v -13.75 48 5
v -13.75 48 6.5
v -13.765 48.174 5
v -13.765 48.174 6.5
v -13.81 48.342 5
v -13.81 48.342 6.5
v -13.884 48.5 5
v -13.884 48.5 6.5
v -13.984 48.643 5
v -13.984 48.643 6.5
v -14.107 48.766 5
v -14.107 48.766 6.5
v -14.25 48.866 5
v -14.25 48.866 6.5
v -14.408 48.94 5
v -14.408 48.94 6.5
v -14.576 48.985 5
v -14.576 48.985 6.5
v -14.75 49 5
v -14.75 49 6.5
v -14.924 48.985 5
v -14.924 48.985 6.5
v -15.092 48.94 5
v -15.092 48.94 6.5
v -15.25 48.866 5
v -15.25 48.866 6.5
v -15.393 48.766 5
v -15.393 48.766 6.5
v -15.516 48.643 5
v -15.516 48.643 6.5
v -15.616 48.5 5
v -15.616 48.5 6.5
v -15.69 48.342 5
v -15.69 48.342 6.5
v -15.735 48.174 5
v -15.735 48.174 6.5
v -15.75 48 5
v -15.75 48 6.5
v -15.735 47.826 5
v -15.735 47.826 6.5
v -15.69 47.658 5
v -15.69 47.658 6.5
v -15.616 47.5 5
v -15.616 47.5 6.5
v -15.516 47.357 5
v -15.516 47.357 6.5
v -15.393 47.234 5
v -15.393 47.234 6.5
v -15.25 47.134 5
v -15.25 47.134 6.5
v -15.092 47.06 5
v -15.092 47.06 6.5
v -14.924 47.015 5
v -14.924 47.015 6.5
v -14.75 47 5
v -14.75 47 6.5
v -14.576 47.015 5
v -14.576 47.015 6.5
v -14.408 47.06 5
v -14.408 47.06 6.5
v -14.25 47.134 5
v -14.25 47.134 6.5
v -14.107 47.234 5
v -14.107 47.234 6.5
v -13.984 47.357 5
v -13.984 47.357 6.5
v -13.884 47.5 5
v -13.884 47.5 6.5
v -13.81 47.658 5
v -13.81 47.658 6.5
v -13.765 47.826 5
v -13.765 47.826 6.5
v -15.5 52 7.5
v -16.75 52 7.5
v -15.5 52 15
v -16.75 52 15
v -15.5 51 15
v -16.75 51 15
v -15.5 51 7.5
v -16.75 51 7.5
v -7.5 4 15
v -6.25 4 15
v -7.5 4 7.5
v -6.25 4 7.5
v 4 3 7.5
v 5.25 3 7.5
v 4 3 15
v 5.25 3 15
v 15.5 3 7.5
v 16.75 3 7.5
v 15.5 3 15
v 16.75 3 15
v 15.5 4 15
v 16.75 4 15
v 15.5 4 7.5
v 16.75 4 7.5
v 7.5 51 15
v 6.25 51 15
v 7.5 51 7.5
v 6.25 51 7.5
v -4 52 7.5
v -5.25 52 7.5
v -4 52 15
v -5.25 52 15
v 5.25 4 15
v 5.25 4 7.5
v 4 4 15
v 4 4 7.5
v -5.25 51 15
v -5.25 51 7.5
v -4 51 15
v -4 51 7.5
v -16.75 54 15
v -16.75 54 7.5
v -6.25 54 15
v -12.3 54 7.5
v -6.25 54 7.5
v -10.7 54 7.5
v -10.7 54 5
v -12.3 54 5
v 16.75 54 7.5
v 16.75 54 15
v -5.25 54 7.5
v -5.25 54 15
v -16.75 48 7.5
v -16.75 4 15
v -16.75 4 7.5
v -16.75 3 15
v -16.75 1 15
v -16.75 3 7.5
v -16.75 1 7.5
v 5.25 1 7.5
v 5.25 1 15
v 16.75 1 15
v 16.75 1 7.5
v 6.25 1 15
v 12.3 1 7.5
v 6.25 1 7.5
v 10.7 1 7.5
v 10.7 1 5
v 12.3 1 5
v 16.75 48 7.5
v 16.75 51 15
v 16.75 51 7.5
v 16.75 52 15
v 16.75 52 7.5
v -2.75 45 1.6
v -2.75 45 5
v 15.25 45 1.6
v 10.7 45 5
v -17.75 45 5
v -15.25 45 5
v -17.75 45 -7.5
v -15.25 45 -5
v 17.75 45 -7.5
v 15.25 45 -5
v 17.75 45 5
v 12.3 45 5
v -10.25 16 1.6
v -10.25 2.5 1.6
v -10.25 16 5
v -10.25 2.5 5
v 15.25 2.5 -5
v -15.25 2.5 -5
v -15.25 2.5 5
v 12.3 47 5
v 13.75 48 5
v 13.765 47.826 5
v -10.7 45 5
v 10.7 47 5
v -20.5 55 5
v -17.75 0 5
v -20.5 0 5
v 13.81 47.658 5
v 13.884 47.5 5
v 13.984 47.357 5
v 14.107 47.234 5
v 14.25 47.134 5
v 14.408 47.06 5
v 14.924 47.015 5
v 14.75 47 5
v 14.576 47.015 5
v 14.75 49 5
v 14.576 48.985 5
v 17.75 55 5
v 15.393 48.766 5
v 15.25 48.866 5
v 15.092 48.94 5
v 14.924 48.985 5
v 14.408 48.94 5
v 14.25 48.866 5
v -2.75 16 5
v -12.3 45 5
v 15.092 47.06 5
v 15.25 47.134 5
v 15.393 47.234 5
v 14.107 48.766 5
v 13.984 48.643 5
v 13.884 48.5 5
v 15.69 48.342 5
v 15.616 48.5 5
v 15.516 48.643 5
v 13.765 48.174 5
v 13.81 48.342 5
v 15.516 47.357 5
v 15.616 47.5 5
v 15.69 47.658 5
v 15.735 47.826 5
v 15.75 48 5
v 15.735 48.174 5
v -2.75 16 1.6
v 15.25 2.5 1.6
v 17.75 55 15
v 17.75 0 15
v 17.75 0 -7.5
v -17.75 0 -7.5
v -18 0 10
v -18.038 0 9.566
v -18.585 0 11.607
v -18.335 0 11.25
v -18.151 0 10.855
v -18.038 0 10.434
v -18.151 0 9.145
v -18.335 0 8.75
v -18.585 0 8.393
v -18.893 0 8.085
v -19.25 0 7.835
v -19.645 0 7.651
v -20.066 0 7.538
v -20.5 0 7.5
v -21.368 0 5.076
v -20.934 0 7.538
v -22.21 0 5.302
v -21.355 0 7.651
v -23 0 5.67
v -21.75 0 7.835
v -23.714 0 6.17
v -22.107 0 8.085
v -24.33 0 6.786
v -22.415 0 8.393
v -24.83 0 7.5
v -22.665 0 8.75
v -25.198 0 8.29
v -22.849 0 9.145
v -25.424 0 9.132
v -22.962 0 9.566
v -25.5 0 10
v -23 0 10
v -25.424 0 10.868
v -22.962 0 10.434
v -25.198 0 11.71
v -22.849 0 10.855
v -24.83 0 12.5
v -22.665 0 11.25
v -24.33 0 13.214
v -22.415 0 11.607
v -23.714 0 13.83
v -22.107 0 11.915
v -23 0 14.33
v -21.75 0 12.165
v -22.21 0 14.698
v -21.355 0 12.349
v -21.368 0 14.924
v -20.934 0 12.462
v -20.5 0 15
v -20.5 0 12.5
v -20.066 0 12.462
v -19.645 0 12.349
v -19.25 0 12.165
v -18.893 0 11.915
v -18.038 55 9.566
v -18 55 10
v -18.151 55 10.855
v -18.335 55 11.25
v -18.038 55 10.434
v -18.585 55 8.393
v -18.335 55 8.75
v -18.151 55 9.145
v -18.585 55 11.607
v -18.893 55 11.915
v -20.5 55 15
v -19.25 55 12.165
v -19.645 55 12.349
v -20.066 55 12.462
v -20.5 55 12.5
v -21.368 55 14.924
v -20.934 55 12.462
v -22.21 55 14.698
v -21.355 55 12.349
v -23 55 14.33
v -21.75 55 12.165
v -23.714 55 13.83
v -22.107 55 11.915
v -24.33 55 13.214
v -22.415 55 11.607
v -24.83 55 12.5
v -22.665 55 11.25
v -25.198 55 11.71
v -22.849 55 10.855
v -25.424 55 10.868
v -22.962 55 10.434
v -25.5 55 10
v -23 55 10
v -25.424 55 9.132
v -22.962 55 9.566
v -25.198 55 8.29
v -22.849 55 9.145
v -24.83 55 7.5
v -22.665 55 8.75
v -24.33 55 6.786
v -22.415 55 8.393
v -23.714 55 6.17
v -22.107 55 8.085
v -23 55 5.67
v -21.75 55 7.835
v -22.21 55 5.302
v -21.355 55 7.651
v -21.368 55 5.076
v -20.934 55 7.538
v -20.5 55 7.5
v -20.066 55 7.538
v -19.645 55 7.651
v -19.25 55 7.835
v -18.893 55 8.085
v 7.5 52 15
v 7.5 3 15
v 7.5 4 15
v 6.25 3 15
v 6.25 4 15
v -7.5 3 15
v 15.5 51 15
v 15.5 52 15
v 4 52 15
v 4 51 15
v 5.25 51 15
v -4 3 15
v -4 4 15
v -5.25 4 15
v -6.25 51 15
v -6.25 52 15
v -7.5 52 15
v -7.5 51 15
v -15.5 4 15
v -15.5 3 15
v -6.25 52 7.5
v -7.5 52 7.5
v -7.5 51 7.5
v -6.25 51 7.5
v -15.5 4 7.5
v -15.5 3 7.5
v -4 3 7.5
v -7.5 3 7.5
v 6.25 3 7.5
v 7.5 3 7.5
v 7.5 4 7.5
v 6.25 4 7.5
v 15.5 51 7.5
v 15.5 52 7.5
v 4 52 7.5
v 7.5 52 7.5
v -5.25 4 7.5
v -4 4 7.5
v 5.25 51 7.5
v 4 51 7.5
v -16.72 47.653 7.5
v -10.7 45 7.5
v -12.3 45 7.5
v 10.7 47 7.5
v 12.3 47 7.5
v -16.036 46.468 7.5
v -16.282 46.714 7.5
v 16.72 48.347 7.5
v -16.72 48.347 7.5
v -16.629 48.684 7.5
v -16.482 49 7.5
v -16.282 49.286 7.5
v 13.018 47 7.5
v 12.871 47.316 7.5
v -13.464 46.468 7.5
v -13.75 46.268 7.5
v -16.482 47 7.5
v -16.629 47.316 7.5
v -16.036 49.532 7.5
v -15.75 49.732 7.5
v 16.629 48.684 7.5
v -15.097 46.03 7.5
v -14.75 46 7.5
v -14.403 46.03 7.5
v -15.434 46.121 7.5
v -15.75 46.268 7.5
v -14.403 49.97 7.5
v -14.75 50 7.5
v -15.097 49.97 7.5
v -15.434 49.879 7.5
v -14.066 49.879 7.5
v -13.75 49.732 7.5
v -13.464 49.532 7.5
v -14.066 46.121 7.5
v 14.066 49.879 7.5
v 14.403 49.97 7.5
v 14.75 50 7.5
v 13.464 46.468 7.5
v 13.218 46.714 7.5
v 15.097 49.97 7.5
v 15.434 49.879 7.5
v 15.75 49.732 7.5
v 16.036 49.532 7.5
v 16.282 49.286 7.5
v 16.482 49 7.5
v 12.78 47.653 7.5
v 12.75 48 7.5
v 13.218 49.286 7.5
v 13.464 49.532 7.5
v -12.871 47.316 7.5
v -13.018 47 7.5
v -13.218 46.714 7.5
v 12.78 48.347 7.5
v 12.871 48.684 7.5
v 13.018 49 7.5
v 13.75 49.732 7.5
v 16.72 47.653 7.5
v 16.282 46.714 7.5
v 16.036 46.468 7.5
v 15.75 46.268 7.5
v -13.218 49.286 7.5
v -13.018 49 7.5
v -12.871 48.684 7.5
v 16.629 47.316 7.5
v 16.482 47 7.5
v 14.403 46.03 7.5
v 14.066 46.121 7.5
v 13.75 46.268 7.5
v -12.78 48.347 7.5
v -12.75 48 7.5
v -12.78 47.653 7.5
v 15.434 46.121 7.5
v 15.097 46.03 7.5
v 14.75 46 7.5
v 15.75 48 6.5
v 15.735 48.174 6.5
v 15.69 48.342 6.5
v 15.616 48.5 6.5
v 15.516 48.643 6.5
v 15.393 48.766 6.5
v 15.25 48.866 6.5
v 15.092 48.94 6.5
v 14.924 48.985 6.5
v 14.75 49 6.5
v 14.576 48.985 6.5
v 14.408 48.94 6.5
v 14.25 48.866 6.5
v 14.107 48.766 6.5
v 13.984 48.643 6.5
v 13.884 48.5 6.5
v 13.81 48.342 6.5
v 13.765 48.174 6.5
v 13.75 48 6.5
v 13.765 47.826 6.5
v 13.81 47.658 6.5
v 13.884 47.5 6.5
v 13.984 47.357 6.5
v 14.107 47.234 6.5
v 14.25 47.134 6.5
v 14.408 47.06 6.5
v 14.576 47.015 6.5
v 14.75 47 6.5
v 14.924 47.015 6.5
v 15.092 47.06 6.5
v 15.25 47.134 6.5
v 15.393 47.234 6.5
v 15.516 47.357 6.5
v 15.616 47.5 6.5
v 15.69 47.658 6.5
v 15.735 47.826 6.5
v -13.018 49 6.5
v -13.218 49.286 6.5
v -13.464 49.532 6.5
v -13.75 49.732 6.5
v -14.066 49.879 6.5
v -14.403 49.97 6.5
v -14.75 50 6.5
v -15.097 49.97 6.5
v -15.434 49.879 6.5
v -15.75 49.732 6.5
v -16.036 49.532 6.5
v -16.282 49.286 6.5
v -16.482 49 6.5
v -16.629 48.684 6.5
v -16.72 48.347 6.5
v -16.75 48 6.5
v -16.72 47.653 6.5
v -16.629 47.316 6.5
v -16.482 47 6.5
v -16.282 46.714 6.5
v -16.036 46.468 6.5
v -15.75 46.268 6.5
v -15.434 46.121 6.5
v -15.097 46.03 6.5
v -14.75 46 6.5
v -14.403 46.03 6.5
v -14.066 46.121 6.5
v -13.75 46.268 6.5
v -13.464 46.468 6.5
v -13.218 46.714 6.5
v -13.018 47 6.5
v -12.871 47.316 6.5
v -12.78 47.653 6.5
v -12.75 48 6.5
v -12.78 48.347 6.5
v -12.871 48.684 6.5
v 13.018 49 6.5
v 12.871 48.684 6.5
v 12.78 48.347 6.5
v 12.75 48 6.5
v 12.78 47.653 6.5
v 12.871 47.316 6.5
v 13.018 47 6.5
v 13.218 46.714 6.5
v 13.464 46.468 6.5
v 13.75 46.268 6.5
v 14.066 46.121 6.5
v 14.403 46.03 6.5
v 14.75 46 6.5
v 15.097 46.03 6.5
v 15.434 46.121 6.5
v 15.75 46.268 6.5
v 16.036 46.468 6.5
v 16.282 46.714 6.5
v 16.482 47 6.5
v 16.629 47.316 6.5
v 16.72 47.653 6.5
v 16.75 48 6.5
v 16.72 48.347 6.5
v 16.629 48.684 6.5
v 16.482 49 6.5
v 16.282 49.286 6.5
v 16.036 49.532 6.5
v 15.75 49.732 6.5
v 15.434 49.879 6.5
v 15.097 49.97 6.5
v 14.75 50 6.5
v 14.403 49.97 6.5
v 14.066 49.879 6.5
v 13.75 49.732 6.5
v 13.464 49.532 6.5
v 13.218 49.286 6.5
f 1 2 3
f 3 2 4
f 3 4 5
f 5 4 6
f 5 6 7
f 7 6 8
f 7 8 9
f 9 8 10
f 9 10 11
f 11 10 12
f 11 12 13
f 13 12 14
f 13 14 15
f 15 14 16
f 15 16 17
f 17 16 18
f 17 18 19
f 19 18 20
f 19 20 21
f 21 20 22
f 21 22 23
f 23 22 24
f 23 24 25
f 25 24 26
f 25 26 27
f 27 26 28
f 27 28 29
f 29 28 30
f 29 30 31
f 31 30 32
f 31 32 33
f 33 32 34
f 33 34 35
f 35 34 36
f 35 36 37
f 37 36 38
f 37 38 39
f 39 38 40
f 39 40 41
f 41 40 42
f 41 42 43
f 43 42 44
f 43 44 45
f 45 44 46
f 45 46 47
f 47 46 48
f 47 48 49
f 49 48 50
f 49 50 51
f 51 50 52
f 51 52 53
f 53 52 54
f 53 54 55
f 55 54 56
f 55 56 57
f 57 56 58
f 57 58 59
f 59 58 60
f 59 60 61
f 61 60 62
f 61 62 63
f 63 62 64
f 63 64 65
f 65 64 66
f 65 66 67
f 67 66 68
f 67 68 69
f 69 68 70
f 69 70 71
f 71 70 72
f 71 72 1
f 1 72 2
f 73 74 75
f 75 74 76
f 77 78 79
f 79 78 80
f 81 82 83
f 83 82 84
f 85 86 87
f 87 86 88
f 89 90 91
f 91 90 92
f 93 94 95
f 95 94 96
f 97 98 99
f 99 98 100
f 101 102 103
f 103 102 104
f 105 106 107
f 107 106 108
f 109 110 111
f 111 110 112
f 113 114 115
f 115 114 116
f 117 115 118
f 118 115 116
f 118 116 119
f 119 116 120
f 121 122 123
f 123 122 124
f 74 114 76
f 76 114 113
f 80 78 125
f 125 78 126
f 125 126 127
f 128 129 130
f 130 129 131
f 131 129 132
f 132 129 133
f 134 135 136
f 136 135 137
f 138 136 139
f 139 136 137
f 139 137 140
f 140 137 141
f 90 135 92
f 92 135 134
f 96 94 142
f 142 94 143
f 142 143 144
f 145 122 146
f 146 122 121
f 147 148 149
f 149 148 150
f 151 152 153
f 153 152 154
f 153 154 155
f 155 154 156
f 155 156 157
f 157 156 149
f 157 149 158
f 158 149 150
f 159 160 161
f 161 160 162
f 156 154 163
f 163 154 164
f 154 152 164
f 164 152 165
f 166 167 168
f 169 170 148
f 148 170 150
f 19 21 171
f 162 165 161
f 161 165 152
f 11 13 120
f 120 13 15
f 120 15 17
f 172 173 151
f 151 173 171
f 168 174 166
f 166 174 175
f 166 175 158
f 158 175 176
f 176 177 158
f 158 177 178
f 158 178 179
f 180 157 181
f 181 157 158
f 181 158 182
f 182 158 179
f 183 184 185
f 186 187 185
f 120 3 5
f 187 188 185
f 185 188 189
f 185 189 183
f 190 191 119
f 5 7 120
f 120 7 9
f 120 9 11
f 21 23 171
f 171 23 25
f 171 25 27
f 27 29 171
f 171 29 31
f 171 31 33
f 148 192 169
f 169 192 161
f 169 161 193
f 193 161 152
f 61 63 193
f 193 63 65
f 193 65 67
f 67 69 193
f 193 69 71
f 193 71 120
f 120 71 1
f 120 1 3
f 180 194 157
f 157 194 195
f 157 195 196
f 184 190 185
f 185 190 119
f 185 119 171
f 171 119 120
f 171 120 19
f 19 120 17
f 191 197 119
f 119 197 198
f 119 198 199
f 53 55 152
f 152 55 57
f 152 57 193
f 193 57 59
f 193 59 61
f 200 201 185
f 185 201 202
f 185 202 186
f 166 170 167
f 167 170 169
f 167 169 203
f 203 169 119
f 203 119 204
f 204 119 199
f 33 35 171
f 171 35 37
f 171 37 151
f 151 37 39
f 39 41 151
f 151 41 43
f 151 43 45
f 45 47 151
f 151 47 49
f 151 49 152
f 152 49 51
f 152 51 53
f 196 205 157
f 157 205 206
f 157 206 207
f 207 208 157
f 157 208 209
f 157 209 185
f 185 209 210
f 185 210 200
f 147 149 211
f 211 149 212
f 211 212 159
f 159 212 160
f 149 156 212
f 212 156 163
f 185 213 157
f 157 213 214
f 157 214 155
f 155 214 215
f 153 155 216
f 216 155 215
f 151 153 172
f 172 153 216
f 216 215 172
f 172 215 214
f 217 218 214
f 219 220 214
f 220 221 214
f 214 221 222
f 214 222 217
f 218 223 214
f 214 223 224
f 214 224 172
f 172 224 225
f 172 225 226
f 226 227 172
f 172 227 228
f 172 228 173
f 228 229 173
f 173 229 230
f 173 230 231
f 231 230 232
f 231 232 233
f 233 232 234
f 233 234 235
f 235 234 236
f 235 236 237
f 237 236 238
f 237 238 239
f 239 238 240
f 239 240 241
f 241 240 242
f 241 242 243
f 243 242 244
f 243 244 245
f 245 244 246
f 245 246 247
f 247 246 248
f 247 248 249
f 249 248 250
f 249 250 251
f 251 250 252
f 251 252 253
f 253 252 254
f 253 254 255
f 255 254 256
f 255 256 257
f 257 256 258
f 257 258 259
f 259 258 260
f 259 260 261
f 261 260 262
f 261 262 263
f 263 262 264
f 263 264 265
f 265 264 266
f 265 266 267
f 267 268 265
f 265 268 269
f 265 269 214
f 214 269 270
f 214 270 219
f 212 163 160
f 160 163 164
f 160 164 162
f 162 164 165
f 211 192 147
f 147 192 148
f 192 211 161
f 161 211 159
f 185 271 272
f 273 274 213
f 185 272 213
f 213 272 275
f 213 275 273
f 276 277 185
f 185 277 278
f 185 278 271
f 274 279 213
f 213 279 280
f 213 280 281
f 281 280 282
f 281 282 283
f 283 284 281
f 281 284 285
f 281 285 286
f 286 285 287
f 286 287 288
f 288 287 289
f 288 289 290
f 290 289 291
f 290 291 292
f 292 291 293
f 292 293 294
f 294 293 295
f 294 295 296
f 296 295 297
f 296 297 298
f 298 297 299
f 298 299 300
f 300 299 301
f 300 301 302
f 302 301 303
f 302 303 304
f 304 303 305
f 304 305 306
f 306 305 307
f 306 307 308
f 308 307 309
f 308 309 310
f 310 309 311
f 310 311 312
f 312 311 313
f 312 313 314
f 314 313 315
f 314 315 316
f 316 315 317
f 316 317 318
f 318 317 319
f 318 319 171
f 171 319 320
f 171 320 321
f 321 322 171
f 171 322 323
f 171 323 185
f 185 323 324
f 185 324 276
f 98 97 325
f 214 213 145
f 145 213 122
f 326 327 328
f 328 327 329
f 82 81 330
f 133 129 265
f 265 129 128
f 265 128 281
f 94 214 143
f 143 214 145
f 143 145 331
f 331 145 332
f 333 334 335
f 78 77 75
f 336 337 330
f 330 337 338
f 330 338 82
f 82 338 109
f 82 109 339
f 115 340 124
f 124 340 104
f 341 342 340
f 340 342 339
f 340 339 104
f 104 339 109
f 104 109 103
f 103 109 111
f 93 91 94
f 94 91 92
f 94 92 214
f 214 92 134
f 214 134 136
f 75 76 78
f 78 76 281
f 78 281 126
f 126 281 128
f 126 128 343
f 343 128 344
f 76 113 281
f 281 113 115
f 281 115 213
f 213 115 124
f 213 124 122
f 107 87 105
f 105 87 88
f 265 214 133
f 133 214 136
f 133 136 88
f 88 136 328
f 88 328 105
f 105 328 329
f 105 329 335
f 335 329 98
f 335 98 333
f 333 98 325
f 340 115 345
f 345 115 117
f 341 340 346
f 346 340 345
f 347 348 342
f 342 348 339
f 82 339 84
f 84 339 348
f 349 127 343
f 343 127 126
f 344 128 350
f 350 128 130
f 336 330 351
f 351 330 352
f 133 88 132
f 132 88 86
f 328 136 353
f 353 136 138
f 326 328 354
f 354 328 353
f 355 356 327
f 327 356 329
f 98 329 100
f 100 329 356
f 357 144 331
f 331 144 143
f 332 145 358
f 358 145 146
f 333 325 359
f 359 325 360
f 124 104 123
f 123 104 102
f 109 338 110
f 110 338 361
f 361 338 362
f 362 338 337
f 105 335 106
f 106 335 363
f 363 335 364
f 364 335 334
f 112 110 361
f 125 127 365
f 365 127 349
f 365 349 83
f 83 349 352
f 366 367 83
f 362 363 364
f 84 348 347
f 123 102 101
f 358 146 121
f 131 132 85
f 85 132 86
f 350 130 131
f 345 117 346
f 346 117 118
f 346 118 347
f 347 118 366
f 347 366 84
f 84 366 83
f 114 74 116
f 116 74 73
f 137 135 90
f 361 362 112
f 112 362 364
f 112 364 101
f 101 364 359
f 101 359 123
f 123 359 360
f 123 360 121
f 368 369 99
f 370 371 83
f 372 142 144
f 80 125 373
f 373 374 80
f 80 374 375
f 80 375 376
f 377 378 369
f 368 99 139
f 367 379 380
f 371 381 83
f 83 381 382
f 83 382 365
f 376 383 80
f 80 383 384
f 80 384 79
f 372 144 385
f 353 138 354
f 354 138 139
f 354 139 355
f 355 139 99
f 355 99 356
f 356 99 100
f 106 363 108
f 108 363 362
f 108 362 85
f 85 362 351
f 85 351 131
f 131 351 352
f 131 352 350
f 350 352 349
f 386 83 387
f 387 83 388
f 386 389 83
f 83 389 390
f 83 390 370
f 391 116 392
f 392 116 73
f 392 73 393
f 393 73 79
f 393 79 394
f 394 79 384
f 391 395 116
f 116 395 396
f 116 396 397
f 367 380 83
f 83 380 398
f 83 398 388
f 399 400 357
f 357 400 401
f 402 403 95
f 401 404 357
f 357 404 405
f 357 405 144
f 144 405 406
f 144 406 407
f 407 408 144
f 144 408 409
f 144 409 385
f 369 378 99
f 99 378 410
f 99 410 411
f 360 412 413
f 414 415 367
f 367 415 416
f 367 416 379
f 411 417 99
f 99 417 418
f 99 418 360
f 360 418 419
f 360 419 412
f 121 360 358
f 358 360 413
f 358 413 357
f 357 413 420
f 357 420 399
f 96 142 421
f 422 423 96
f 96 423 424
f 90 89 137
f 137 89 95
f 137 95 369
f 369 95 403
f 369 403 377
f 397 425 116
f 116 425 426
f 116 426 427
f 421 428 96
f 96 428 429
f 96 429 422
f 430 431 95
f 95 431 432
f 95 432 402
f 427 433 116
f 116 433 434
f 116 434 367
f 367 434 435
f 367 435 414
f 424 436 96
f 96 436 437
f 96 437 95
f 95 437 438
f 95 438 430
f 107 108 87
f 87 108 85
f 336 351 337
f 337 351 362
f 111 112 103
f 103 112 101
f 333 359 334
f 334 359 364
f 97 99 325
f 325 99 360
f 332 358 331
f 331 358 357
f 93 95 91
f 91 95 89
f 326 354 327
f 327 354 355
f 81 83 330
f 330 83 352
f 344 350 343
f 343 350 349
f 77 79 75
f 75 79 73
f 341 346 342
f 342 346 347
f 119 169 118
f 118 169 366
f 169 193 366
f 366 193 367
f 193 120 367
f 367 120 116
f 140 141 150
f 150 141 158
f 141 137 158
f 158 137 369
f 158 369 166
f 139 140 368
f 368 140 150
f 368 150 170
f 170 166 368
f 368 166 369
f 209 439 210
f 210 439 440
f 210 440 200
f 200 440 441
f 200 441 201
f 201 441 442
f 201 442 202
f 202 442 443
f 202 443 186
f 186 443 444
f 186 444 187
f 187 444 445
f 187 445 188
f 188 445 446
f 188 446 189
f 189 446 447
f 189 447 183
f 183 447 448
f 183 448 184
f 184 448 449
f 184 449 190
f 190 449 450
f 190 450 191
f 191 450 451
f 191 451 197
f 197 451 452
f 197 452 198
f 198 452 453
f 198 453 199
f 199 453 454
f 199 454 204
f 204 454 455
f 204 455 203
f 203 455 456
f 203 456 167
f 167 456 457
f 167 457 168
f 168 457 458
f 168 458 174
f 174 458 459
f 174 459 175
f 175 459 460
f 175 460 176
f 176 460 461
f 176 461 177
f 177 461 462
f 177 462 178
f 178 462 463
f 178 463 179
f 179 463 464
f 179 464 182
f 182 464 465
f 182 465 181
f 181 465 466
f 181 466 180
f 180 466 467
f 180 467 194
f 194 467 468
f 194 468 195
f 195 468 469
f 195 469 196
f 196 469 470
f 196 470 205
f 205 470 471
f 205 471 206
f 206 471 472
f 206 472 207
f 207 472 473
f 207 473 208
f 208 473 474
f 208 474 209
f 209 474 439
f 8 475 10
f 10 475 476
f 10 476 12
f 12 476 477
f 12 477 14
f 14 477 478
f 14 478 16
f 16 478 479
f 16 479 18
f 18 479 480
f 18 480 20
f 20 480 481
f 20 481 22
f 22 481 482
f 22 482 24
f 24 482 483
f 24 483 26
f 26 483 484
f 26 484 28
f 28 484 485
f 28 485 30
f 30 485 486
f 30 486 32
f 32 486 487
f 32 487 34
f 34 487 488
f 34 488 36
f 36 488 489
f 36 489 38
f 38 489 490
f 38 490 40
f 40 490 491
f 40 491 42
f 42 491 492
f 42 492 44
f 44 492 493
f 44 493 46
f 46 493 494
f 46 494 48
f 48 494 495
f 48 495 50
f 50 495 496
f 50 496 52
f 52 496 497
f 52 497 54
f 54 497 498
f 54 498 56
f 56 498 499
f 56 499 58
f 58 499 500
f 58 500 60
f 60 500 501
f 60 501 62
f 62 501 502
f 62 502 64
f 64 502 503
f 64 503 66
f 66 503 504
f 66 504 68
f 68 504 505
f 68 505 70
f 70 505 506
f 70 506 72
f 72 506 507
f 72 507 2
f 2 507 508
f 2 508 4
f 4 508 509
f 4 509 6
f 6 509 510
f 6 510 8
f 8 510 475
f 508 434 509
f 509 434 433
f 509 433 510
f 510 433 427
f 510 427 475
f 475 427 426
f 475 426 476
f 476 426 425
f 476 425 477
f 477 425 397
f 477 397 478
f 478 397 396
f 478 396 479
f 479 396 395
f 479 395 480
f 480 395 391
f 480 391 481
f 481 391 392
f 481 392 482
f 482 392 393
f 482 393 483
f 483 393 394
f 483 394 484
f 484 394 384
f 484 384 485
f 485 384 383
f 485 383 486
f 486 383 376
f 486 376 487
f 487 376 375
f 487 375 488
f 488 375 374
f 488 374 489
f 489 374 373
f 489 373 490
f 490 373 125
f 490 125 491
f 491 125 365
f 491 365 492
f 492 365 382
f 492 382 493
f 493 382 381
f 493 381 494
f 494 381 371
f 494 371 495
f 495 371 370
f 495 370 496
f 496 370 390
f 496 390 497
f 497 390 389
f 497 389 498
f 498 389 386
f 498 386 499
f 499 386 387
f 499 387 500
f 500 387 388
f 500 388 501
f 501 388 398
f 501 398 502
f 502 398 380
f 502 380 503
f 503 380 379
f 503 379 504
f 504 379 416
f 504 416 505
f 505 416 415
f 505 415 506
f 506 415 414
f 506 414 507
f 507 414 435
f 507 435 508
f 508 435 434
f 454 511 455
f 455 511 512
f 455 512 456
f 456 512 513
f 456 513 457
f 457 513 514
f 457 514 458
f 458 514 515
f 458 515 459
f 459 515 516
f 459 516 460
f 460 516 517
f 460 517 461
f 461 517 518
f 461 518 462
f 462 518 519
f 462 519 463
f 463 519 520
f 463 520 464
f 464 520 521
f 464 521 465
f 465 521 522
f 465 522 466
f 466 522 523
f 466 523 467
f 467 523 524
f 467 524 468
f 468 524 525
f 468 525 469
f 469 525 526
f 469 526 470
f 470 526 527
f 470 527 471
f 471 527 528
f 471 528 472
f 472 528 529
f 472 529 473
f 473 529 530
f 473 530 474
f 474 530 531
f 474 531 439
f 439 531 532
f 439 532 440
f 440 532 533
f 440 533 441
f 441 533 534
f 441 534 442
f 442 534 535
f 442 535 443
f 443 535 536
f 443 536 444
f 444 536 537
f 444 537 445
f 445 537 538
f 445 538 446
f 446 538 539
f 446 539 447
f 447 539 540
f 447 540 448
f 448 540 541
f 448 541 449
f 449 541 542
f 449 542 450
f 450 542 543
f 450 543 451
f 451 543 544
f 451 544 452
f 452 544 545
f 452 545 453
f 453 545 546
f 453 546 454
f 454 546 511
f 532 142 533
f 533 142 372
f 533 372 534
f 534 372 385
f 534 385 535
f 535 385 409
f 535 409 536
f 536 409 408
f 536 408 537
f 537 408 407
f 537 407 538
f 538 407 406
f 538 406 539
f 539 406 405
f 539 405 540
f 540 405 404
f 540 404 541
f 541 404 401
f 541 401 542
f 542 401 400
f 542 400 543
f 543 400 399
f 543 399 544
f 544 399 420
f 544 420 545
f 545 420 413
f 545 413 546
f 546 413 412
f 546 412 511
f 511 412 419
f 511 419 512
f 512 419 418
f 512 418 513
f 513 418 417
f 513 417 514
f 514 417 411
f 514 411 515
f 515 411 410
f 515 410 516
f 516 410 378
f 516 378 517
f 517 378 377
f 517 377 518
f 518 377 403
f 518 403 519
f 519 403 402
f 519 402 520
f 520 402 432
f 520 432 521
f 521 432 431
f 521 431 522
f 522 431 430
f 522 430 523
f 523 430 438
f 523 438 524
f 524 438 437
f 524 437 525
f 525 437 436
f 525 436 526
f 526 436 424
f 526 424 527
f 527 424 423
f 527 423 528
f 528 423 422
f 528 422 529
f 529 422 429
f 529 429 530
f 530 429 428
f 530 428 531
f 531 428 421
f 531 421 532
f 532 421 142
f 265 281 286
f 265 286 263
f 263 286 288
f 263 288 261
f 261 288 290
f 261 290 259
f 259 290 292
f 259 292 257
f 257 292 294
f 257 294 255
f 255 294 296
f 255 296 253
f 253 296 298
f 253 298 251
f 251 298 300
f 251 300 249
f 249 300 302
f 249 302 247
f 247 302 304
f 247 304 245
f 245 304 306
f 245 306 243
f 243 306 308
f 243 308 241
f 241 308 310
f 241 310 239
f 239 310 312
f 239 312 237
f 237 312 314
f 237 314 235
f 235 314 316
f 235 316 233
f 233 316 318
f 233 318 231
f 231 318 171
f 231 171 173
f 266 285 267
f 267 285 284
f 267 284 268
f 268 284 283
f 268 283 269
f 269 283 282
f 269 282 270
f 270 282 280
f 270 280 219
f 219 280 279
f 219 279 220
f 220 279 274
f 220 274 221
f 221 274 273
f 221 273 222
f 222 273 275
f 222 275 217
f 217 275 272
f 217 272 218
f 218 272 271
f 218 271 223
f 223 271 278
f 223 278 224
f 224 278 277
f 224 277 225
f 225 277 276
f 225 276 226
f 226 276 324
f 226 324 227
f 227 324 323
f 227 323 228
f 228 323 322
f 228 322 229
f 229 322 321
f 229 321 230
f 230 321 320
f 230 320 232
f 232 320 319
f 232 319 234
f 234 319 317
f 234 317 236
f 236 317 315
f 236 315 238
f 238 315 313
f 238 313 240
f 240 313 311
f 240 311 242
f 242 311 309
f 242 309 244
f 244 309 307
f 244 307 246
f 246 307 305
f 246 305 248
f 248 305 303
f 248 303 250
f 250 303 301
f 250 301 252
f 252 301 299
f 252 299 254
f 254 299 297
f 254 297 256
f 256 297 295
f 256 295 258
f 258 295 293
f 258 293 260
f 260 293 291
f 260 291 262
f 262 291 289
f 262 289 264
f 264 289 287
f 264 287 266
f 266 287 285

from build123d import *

# Parameters (mm, degrees)
SKETCH1_W           = 30.5
SKETCH1_H           = 10
BOSS_EXTRUDE1_DEPTH = 2.5
SKETCH2_W           = 35.5
SKETCH2_H           = 15
BOSS_EXTRUDE3_DEPTH = 45
SKETCH3_W           = 7.5
SKETCH3_H           = 3.4
CUT_EXTRUDE1_DEPTH  = 29
SKETCH4_W           = 35.5
SKETCH4_H           = 2.5
BOSS_EXTRUDE4_DEPTH = 10
SKETCH5_W           = 35.5
SKETCH5_H           = 55
SKETCH5_W_2         = 33.5
SKETCH5_H_2         = 53
BOSS_EXTRUDE5_DEPTH = 7.5
SKETCH6_W           = 10.5
SKETCH6_H           = 47
BOSS_EXTRUDE6_DEPTH = 7.5
SKETCH7_W           = 8
SKETCH7_H           = 1
SKETCH7_W_2         = 1
SKETCH7_H_2         = 2
CUT_EXTRUDE2_DEPTH  = 7.5
SKETCH8_W           = 1.6
SKETCH8_H           = 46
SKETCH8_H_2         = 9
CUT_EXTRUDE3_DEPTH  = 2.5
CUT_EXTRUDE4_REACH  = 17
SKETCH9_R           = 1
SKETCH10_R          = 2
CUT_EXTRUDE5_DEPTH  = 1
SKETCH11_R          = 2.5
BOSS_EXTRUDE8_DEPTH = 55


with BuildPart() as part:
    # Sketch1 → Boss-Extrude1 (new body)
    with BuildSketch(Plane(origin=(0, 0, 0), x_dir=(1, 0, 0), z_dir=(0, 1, 0))):
        Rectangle(SKETCH1_W, SKETCH1_H)
    extrude(amount=BOSS_EXTRUDE1_DEPTH)

    # Sketch2 → Boss-Extrude3 (add)
    with BuildSketch(Plane(origin=(0, 0, 0), x_dir=(1, 0, 0), z_dir=(0, 1, 0))):
        Rectangle(SKETCH2_W, SKETCH2_H)
        Polygon((-15.25, 5), (-15.25, -5), (-10.25, -5), (-10.25, -1.6), (15.25, -1.6), (15.25, 5), align=None, mode=Mode.SUBTRACT)
    extrude(amount=BOSS_EXTRUDE3_DEPTH)

    # Sketch3 → Cut-Extrude1 (cut)
    with BuildSketch(Plane(origin=(0, 45, 0), x_dir=(1, 0, 0), z_dir=(0, 1, 0))):
        with Locations((-6.5, -3.3)):
            Rectangle(SKETCH3_W, SKETCH3_H)
    extrude(amount=-CUT_EXTRUDE1_DEPTH, mode=Mode.SUBTRACT)

    # Sketch4 → Boss-Extrude4 (add)
    with BuildSketch(Plane(origin=(0, 45, 0), x_dir=(1, 0, 0), z_dir=(0, 1, 0))):
        with Locations((0, -6.25)):
            Rectangle(SKETCH4_W, SKETCH4_H)
    extrude(amount=BOSS_EXTRUDE4_DEPTH)

    # Sketch5 → Boss-Extrude5 (add)
    with BuildSketch(Plane.XY.offset(7.5)):
        with Locations((0, 27.5)):
            Rectangle(SKETCH5_W, SKETCH5_H)
        with Locations((0, 27.5)):
            Rectangle(SKETCH5_W_2, SKETCH5_H_2, mode=Mode.SUBTRACT)
    extrude(amount=BOSS_EXTRUDE5_DEPTH)

    # Sketch6 → Boss-Extrude6 (add)
    with BuildSketch(Plane.XY.offset(7.5)):
        Polygon((-6.25, 54), (-6.25, 52), (-16.75, 52), (-16.75, 51), (-6.25, 51), (-6.25, 4), (-16.75, 4), (-16.75, 3), (-6.25, 3), (-6.25, 1), (-5.25, 1), (-5.25, 3), (5.25, 3), (5.25, 1), (6.25, 1), (6.25, 3), (16.75, 3), (16.75, 4), (6.25, 4), (6.25, 51), (16.75, 51), (16.75, 52), (6.25, 52), (6.25, 54), (5.25, 54), (5.25, 52), (-5.25, 52), (-5.25, 54), align=None)
        with Locations((0, 27.5)):
            Rectangle(SKETCH6_W, SKETCH6_H, mode=Mode.SUBTRACT)
    extrude(amount=BOSS_EXTRUDE6_DEPTH)

    # Sketch7 → Cut-Extrude2 (cut)
    with BuildSketch(Plane.XY.offset(15)):
        with Locations((0, 51.5)):
            Rectangle(SKETCH7_W, SKETCH7_H)
        with Locations((-11.5, 51.5)):
            Rectangle(SKETCH7_W, SKETCH7_H)
        with Locations((11.5, 51.5)):
            Rectangle(SKETCH7_W, SKETCH7_H)
        with Locations((11.5, 3.5)):
            Rectangle(SKETCH7_W, SKETCH7_H)
        with Locations((5.75, 53)):
            Rectangle(SKETCH7_W_2, SKETCH7_H_2)
        with Locations((0, 3.5)):
            Rectangle(SKETCH7_W, SKETCH7_H)
        with Locations((-11.5, 3.5)):
            Rectangle(SKETCH7_W, SKETCH7_H)
        with Locations((-5.75, 2)):
            Rectangle(SKETCH7_W_2, SKETCH7_H_2)
    extrude(amount=-CUT_EXTRUDE2_DEPTH, mode=Mode.SUBTRACT)

    # Sketch8 → Cut-Extrude3 (cut)
    with BuildSketch(Plane.XY.offset(7.5)):
        with Locations((11.5, 24)):
            Rectangle(SKETCH8_W, SKETCH8_H)
        with Locations((-11.5, 49.5)):
            Rectangle(SKETCH8_W, SKETCH8_H_2)
    extrude(amount=-CUT_EXTRUDE3_DEPTH, mode=Mode.SUBTRACT)

    # Sketch9 → Cut-Extrude4 (cut, up to next)
    with BuildSketch(Plane.XY.offset(7.5), mode=Mode.PRIVATE) as cut_extrude4_sk1:
        with Locations((-14.75, 48)):
            Circle(SKETCH9_R)
    cut_extrude4_tool1 = extrude(cut_extrude4_sk1.sketch, amount=-CUT_EXTRUDE4_REACH, mode=Mode.PRIVATE) & part.part
    add(cut_extrude4_tool1.solids().sort_by_distance((-14.75, 48, 7.5))[0], mode=Mode.SUBTRACT)
    # Sketch9 → Cut-Extrude4 (cut, up to next)
    with BuildSketch(Plane.XY.offset(7.5), mode=Mode.PRIVATE) as cut_extrude4_sk2:
        with Locations((14.75, 48)):
            Circle(SKETCH9_R)
    cut_extrude4_tool2 = extrude(cut_extrude4_sk2.sketch, amount=-CUT_EXTRUDE4_REACH, mode=Mode.PRIVATE) & part.part
    add(cut_extrude4_tool2.solids().sort_by_distance((14.75, 48, 7.5))[0], mode=Mode.SUBTRACT)

    # Sketch10 → Cut-Extrude5 (cut)
    with BuildSketch(Plane.XY.offset(7.5)):
        with Locations((-14.75, 48)):
            Circle(SKETCH10_R)
        with Locations((14.75, 48)):
            Circle(SKETCH10_R)
    extrude(amount=-CUT_EXTRUDE5_DEPTH, mode=Mode.SUBTRACT)

    # Sketch11 → Boss-Extrude8 (add)
    with BuildSketch(Plane(origin=(0, 55, 0), x_dir=(1, 0, 0), z_dir=(0, 1, 0))):
        with BuildLine():
            Line((-17.75, -5), (-20.5, -5))
            ThreePointArc((-20.5, -5), (-25.5, -10), (-20.5, -15))
            Line((-20.5, -15), (-17.75, -15))
            Line((-17.75, -15), (-17.75, -5))
        make_face()
        with Locations((-20.5, -10)):
            Circle(SKETCH11_R, mode=Mode.SUBTRACT)
    extrude(amount=-BOSS_EXTRUDE8_DEPTH)


solid = part.part
